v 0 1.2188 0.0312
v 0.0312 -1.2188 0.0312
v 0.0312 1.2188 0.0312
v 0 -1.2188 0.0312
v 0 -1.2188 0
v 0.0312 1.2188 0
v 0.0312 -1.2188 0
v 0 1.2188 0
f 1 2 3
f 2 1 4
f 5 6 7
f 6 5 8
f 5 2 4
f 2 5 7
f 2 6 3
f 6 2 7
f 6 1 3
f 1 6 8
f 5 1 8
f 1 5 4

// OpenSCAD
// file: ../../../constraints.scad
//####################################
// Math-Magik LPP - Design Constraints
// (c) 2021 by Roie R. Black
//====================================

// AMA Rules for event 208
//------------------------------------

max_overall_length = 20;
max_projected_wing_span = 18;
max_bearing_to_rear_hook = 10;
max_wing_chord = 5;
max_stab_span = 12;
max_stab_chord = 4;
max_prop_diameter = 12;
// file: MMlib/square_spar.scad
//####################################
// square_spar.scad
// (c) 2021 by Roie R. Black
//====================================


module square_spar(length=6,size=1/16) {
  translate([size/2, 0, size/2])
    cube([size,length,size], center=true);
}

square_spar(6,1/16);
// file: ../../stab_data.scad
//#####################################
// stab.data
// (c) 2021 by Roie R. Black
//=====================================
include <../constraints.scad>

// center section dimensions
center_span = 6;
spar_size = 1/16;
rib_chord = max_stab_chord - 2 * spar_size;
rib_camber = 2;
num_center_ribs = 3;

// tip section dimensions
tip_span = (max_stab_span - center_span)/2;
tip_radius = 1.5;
tip_le_span = tip_span - tip_radius;
tip_rib_chord = max_stab_chord - tip_radius - spar_size;
// main file
//########################################
// tip_rib.scad
// (c) 2021 - Roie R. Black
//****************************************
include <../../stab_data.scad>

use <MMlib/square_spar.scad>

module tip_rib() {
      square_spar(tip_rib_chord, spar_size/2);
}

tip_rib();
